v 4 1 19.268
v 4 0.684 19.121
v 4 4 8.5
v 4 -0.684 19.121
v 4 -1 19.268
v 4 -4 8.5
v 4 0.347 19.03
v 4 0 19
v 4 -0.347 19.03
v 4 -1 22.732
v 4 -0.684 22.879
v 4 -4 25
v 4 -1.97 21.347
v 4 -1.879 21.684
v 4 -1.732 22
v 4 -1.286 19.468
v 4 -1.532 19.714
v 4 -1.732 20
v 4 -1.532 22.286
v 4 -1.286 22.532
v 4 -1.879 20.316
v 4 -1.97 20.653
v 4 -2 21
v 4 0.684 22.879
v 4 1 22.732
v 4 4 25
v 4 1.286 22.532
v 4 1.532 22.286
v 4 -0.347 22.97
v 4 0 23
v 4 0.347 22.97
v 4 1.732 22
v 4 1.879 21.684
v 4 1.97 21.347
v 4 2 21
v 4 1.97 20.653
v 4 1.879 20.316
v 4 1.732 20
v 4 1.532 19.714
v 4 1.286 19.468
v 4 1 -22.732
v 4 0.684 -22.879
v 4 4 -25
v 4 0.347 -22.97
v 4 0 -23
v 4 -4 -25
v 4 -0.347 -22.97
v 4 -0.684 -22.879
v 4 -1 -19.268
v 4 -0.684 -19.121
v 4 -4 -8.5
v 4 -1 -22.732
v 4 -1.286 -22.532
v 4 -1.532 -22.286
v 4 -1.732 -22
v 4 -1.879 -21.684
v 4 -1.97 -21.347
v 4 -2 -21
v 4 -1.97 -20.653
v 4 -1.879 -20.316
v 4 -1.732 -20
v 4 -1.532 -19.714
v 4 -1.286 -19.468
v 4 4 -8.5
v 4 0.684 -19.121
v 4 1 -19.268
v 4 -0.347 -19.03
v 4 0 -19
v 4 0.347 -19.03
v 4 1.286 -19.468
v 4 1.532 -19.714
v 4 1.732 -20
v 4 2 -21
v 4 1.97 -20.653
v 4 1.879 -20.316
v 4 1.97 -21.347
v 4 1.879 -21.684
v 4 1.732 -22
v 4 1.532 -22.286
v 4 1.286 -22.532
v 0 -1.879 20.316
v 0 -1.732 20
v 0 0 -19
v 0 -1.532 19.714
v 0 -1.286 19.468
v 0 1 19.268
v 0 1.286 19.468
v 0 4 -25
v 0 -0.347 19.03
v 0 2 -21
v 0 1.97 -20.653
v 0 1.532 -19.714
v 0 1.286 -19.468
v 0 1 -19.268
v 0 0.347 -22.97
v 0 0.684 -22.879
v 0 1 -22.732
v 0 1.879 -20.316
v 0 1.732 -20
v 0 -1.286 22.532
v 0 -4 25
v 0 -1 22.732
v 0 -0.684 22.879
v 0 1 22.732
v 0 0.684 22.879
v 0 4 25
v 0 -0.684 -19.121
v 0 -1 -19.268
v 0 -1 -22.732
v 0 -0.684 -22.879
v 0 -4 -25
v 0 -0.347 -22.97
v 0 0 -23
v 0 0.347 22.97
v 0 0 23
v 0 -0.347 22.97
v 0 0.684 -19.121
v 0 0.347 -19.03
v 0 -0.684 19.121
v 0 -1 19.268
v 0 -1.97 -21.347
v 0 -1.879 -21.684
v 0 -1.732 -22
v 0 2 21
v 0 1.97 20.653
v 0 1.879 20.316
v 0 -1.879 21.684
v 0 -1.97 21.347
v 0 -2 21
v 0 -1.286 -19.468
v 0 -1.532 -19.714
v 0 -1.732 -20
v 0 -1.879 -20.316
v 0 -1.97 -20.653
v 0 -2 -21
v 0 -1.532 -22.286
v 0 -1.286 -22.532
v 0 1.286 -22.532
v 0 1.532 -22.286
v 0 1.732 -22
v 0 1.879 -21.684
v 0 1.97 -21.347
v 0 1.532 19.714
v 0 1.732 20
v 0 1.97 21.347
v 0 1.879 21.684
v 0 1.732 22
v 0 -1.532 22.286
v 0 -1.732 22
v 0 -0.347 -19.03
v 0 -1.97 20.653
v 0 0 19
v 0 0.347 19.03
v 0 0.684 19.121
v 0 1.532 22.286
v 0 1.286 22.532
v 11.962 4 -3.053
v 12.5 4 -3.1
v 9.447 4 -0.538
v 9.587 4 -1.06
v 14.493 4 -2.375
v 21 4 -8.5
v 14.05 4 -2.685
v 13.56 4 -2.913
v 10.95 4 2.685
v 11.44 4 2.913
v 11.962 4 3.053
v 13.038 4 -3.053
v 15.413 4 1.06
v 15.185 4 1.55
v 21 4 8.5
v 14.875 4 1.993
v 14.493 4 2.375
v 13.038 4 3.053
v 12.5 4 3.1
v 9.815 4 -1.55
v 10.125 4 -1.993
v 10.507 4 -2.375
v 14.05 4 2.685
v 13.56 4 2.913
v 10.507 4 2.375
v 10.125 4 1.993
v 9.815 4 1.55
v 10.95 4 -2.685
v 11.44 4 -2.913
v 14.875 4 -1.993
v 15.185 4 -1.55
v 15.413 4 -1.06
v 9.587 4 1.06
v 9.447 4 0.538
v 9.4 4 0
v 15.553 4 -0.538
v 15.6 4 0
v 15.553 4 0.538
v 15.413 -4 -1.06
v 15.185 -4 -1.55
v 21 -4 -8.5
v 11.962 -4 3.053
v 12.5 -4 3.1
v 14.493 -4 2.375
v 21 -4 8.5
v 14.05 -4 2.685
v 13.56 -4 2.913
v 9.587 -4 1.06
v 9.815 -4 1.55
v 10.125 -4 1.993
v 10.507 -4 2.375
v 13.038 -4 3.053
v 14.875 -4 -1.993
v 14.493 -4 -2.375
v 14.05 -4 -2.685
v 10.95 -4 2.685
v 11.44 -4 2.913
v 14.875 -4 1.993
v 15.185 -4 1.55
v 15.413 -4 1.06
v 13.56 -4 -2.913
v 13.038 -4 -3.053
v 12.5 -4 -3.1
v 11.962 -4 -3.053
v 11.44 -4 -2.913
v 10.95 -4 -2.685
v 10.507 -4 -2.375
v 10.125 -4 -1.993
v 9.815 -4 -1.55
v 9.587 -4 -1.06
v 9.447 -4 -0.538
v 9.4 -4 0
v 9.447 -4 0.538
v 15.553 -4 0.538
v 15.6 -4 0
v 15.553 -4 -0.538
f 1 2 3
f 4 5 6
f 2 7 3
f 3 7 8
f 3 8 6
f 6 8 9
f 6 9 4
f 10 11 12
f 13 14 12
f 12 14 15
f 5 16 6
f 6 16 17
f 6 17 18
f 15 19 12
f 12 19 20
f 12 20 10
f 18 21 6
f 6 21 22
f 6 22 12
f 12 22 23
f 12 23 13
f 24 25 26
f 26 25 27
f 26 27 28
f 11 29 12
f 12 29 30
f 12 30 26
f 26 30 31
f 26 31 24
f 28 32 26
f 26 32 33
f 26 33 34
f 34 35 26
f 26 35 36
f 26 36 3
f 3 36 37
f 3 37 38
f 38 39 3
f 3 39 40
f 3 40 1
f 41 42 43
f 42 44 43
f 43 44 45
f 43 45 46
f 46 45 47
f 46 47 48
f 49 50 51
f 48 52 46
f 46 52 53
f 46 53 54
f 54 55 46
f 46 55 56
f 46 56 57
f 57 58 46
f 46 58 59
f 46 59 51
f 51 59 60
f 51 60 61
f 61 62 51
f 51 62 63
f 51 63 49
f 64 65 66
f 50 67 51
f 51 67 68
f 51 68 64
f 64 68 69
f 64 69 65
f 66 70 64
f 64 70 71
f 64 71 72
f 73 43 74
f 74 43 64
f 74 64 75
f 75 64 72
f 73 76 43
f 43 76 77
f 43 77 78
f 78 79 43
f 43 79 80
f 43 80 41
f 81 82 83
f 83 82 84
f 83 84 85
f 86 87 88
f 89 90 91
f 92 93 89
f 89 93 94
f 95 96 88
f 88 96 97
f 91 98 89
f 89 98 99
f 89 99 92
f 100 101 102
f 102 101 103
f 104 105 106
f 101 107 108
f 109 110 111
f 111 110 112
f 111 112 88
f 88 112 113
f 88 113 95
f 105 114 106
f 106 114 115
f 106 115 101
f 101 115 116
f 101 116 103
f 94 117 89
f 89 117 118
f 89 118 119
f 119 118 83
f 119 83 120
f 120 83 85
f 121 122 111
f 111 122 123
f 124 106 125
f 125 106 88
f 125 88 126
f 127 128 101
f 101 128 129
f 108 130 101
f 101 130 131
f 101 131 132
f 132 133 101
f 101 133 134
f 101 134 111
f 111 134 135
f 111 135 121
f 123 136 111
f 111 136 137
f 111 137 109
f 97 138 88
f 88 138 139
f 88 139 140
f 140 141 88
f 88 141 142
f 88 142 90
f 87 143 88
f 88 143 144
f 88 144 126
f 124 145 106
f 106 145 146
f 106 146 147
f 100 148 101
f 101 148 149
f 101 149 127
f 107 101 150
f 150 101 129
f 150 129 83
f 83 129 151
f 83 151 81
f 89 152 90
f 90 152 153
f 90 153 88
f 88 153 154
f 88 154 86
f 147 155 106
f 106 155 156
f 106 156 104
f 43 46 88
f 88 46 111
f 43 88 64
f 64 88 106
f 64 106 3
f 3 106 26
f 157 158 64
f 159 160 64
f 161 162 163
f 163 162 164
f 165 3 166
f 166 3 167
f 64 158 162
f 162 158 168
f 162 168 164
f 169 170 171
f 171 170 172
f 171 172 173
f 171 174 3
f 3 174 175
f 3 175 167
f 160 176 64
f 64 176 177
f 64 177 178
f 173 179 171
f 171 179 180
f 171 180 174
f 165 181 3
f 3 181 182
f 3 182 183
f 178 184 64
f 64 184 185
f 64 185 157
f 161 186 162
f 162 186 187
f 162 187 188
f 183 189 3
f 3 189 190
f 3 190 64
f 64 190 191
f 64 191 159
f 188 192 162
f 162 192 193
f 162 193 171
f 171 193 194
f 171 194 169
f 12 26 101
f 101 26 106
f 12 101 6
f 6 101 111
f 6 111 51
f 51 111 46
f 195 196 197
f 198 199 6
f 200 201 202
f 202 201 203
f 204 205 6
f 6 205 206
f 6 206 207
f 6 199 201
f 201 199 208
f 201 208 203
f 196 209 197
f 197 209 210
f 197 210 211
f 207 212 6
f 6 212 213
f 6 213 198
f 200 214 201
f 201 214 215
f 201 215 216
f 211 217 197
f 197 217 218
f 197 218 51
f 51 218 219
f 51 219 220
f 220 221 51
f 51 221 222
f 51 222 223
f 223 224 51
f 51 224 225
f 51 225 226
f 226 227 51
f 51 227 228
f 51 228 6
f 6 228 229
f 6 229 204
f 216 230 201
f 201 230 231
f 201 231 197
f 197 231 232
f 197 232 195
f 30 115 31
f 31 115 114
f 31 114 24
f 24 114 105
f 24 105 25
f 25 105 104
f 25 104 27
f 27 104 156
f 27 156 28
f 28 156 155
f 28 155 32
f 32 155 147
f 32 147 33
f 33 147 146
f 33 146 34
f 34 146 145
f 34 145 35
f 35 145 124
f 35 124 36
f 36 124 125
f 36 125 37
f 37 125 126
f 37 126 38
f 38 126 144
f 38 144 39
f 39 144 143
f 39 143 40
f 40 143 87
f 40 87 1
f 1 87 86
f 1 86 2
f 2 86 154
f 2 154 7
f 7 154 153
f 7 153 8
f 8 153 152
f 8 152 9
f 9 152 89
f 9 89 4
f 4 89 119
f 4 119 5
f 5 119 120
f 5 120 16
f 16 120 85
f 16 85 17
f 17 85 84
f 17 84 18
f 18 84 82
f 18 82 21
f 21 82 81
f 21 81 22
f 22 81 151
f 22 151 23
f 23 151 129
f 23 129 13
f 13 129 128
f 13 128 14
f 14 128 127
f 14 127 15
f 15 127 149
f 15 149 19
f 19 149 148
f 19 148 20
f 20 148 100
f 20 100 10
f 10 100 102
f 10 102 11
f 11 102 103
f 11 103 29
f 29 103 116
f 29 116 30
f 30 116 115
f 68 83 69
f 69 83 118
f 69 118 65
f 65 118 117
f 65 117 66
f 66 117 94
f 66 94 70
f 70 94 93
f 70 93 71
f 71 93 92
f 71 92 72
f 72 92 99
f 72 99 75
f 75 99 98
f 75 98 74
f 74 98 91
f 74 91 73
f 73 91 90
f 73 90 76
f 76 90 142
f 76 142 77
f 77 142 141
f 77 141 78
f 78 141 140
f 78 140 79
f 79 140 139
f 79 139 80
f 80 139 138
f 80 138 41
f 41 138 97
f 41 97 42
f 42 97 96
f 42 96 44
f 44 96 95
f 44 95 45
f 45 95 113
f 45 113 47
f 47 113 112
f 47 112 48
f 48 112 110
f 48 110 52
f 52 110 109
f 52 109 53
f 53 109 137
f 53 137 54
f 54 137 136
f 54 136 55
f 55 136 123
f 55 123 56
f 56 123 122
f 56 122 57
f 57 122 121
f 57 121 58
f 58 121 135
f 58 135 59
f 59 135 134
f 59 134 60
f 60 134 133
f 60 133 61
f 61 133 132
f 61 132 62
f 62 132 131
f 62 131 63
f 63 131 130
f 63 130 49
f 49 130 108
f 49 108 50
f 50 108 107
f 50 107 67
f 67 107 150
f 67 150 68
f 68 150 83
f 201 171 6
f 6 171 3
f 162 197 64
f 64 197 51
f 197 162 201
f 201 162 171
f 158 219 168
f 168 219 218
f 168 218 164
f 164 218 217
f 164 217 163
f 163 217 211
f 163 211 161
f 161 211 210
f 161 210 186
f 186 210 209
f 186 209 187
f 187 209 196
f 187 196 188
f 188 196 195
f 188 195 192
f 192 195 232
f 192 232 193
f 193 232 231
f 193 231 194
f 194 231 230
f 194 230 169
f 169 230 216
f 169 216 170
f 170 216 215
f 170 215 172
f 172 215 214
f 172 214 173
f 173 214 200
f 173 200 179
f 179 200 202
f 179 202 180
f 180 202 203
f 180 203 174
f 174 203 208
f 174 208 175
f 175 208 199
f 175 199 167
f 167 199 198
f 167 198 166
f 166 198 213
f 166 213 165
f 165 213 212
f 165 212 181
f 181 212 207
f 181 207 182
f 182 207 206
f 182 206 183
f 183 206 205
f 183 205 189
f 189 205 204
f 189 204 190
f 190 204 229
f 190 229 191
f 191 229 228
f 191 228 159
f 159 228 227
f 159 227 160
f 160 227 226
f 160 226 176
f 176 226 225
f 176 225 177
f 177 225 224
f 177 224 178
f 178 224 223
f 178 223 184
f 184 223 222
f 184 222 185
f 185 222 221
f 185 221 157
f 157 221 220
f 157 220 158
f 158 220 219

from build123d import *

# Parameters (mm, degrees)
SKETCH_1_W          = 50
SKETCH_1_H          = 8
SKETCH_1_R          = 2
EXTRUDE_1_DEPTH     = 4
SKETCH_2_W          = 17
SKETCH_2_H          = 8
EXTRUDE_2_DEPTH     = 17
SKETCH_3_R          = 3.1
CUT_EXTRUDE_1_DEPTH = 34.615472628


with BuildPart() as part:
    # 草图1 → 凸台-拉伸1 (new body)
    with BuildSketch(Plane(origin=(0, 0, 0), x_dir=(0, 0, -1), z_dir=(1, 0, 0))):
        Rectangle(SKETCH_1_W, SKETCH_1_H)
        with Locations((-21, 0)):
            Circle(SKETCH_1_R, mode=Mode.SUBTRACT)
        with Locations(Location((21, 0, 0), (0, 0, 180))):
            Circle(SKETCH_1_R, mode=Mode.SUBTRACT)
    extrude(amount=EXTRUDE_1_DEPTH)

    # 草图2 → 凸台-拉伸2 (add)
    with BuildSketch(Plane(origin=(4, 0, 0), x_dir=(0, 0, -1), z_dir=(1, 0, 0))):
        Rectangle(SKETCH_2_W, SKETCH_2_H)
    extrude(amount=EXTRUDE_2_DEPTH)

    # 草图3 → 切除-拉伸1 (cut, through all)
    with BuildSketch(Plane.XZ.offset(4)):
        with Locations(Location((12.5, 0, 0), (0, 0, 270))):
            Circle(SKETCH_3_R)
    extrude(amount=-CUT_EXTRUDE_1_DEPTH, mode=Mode.SUBTRACT)


solid = part.part
